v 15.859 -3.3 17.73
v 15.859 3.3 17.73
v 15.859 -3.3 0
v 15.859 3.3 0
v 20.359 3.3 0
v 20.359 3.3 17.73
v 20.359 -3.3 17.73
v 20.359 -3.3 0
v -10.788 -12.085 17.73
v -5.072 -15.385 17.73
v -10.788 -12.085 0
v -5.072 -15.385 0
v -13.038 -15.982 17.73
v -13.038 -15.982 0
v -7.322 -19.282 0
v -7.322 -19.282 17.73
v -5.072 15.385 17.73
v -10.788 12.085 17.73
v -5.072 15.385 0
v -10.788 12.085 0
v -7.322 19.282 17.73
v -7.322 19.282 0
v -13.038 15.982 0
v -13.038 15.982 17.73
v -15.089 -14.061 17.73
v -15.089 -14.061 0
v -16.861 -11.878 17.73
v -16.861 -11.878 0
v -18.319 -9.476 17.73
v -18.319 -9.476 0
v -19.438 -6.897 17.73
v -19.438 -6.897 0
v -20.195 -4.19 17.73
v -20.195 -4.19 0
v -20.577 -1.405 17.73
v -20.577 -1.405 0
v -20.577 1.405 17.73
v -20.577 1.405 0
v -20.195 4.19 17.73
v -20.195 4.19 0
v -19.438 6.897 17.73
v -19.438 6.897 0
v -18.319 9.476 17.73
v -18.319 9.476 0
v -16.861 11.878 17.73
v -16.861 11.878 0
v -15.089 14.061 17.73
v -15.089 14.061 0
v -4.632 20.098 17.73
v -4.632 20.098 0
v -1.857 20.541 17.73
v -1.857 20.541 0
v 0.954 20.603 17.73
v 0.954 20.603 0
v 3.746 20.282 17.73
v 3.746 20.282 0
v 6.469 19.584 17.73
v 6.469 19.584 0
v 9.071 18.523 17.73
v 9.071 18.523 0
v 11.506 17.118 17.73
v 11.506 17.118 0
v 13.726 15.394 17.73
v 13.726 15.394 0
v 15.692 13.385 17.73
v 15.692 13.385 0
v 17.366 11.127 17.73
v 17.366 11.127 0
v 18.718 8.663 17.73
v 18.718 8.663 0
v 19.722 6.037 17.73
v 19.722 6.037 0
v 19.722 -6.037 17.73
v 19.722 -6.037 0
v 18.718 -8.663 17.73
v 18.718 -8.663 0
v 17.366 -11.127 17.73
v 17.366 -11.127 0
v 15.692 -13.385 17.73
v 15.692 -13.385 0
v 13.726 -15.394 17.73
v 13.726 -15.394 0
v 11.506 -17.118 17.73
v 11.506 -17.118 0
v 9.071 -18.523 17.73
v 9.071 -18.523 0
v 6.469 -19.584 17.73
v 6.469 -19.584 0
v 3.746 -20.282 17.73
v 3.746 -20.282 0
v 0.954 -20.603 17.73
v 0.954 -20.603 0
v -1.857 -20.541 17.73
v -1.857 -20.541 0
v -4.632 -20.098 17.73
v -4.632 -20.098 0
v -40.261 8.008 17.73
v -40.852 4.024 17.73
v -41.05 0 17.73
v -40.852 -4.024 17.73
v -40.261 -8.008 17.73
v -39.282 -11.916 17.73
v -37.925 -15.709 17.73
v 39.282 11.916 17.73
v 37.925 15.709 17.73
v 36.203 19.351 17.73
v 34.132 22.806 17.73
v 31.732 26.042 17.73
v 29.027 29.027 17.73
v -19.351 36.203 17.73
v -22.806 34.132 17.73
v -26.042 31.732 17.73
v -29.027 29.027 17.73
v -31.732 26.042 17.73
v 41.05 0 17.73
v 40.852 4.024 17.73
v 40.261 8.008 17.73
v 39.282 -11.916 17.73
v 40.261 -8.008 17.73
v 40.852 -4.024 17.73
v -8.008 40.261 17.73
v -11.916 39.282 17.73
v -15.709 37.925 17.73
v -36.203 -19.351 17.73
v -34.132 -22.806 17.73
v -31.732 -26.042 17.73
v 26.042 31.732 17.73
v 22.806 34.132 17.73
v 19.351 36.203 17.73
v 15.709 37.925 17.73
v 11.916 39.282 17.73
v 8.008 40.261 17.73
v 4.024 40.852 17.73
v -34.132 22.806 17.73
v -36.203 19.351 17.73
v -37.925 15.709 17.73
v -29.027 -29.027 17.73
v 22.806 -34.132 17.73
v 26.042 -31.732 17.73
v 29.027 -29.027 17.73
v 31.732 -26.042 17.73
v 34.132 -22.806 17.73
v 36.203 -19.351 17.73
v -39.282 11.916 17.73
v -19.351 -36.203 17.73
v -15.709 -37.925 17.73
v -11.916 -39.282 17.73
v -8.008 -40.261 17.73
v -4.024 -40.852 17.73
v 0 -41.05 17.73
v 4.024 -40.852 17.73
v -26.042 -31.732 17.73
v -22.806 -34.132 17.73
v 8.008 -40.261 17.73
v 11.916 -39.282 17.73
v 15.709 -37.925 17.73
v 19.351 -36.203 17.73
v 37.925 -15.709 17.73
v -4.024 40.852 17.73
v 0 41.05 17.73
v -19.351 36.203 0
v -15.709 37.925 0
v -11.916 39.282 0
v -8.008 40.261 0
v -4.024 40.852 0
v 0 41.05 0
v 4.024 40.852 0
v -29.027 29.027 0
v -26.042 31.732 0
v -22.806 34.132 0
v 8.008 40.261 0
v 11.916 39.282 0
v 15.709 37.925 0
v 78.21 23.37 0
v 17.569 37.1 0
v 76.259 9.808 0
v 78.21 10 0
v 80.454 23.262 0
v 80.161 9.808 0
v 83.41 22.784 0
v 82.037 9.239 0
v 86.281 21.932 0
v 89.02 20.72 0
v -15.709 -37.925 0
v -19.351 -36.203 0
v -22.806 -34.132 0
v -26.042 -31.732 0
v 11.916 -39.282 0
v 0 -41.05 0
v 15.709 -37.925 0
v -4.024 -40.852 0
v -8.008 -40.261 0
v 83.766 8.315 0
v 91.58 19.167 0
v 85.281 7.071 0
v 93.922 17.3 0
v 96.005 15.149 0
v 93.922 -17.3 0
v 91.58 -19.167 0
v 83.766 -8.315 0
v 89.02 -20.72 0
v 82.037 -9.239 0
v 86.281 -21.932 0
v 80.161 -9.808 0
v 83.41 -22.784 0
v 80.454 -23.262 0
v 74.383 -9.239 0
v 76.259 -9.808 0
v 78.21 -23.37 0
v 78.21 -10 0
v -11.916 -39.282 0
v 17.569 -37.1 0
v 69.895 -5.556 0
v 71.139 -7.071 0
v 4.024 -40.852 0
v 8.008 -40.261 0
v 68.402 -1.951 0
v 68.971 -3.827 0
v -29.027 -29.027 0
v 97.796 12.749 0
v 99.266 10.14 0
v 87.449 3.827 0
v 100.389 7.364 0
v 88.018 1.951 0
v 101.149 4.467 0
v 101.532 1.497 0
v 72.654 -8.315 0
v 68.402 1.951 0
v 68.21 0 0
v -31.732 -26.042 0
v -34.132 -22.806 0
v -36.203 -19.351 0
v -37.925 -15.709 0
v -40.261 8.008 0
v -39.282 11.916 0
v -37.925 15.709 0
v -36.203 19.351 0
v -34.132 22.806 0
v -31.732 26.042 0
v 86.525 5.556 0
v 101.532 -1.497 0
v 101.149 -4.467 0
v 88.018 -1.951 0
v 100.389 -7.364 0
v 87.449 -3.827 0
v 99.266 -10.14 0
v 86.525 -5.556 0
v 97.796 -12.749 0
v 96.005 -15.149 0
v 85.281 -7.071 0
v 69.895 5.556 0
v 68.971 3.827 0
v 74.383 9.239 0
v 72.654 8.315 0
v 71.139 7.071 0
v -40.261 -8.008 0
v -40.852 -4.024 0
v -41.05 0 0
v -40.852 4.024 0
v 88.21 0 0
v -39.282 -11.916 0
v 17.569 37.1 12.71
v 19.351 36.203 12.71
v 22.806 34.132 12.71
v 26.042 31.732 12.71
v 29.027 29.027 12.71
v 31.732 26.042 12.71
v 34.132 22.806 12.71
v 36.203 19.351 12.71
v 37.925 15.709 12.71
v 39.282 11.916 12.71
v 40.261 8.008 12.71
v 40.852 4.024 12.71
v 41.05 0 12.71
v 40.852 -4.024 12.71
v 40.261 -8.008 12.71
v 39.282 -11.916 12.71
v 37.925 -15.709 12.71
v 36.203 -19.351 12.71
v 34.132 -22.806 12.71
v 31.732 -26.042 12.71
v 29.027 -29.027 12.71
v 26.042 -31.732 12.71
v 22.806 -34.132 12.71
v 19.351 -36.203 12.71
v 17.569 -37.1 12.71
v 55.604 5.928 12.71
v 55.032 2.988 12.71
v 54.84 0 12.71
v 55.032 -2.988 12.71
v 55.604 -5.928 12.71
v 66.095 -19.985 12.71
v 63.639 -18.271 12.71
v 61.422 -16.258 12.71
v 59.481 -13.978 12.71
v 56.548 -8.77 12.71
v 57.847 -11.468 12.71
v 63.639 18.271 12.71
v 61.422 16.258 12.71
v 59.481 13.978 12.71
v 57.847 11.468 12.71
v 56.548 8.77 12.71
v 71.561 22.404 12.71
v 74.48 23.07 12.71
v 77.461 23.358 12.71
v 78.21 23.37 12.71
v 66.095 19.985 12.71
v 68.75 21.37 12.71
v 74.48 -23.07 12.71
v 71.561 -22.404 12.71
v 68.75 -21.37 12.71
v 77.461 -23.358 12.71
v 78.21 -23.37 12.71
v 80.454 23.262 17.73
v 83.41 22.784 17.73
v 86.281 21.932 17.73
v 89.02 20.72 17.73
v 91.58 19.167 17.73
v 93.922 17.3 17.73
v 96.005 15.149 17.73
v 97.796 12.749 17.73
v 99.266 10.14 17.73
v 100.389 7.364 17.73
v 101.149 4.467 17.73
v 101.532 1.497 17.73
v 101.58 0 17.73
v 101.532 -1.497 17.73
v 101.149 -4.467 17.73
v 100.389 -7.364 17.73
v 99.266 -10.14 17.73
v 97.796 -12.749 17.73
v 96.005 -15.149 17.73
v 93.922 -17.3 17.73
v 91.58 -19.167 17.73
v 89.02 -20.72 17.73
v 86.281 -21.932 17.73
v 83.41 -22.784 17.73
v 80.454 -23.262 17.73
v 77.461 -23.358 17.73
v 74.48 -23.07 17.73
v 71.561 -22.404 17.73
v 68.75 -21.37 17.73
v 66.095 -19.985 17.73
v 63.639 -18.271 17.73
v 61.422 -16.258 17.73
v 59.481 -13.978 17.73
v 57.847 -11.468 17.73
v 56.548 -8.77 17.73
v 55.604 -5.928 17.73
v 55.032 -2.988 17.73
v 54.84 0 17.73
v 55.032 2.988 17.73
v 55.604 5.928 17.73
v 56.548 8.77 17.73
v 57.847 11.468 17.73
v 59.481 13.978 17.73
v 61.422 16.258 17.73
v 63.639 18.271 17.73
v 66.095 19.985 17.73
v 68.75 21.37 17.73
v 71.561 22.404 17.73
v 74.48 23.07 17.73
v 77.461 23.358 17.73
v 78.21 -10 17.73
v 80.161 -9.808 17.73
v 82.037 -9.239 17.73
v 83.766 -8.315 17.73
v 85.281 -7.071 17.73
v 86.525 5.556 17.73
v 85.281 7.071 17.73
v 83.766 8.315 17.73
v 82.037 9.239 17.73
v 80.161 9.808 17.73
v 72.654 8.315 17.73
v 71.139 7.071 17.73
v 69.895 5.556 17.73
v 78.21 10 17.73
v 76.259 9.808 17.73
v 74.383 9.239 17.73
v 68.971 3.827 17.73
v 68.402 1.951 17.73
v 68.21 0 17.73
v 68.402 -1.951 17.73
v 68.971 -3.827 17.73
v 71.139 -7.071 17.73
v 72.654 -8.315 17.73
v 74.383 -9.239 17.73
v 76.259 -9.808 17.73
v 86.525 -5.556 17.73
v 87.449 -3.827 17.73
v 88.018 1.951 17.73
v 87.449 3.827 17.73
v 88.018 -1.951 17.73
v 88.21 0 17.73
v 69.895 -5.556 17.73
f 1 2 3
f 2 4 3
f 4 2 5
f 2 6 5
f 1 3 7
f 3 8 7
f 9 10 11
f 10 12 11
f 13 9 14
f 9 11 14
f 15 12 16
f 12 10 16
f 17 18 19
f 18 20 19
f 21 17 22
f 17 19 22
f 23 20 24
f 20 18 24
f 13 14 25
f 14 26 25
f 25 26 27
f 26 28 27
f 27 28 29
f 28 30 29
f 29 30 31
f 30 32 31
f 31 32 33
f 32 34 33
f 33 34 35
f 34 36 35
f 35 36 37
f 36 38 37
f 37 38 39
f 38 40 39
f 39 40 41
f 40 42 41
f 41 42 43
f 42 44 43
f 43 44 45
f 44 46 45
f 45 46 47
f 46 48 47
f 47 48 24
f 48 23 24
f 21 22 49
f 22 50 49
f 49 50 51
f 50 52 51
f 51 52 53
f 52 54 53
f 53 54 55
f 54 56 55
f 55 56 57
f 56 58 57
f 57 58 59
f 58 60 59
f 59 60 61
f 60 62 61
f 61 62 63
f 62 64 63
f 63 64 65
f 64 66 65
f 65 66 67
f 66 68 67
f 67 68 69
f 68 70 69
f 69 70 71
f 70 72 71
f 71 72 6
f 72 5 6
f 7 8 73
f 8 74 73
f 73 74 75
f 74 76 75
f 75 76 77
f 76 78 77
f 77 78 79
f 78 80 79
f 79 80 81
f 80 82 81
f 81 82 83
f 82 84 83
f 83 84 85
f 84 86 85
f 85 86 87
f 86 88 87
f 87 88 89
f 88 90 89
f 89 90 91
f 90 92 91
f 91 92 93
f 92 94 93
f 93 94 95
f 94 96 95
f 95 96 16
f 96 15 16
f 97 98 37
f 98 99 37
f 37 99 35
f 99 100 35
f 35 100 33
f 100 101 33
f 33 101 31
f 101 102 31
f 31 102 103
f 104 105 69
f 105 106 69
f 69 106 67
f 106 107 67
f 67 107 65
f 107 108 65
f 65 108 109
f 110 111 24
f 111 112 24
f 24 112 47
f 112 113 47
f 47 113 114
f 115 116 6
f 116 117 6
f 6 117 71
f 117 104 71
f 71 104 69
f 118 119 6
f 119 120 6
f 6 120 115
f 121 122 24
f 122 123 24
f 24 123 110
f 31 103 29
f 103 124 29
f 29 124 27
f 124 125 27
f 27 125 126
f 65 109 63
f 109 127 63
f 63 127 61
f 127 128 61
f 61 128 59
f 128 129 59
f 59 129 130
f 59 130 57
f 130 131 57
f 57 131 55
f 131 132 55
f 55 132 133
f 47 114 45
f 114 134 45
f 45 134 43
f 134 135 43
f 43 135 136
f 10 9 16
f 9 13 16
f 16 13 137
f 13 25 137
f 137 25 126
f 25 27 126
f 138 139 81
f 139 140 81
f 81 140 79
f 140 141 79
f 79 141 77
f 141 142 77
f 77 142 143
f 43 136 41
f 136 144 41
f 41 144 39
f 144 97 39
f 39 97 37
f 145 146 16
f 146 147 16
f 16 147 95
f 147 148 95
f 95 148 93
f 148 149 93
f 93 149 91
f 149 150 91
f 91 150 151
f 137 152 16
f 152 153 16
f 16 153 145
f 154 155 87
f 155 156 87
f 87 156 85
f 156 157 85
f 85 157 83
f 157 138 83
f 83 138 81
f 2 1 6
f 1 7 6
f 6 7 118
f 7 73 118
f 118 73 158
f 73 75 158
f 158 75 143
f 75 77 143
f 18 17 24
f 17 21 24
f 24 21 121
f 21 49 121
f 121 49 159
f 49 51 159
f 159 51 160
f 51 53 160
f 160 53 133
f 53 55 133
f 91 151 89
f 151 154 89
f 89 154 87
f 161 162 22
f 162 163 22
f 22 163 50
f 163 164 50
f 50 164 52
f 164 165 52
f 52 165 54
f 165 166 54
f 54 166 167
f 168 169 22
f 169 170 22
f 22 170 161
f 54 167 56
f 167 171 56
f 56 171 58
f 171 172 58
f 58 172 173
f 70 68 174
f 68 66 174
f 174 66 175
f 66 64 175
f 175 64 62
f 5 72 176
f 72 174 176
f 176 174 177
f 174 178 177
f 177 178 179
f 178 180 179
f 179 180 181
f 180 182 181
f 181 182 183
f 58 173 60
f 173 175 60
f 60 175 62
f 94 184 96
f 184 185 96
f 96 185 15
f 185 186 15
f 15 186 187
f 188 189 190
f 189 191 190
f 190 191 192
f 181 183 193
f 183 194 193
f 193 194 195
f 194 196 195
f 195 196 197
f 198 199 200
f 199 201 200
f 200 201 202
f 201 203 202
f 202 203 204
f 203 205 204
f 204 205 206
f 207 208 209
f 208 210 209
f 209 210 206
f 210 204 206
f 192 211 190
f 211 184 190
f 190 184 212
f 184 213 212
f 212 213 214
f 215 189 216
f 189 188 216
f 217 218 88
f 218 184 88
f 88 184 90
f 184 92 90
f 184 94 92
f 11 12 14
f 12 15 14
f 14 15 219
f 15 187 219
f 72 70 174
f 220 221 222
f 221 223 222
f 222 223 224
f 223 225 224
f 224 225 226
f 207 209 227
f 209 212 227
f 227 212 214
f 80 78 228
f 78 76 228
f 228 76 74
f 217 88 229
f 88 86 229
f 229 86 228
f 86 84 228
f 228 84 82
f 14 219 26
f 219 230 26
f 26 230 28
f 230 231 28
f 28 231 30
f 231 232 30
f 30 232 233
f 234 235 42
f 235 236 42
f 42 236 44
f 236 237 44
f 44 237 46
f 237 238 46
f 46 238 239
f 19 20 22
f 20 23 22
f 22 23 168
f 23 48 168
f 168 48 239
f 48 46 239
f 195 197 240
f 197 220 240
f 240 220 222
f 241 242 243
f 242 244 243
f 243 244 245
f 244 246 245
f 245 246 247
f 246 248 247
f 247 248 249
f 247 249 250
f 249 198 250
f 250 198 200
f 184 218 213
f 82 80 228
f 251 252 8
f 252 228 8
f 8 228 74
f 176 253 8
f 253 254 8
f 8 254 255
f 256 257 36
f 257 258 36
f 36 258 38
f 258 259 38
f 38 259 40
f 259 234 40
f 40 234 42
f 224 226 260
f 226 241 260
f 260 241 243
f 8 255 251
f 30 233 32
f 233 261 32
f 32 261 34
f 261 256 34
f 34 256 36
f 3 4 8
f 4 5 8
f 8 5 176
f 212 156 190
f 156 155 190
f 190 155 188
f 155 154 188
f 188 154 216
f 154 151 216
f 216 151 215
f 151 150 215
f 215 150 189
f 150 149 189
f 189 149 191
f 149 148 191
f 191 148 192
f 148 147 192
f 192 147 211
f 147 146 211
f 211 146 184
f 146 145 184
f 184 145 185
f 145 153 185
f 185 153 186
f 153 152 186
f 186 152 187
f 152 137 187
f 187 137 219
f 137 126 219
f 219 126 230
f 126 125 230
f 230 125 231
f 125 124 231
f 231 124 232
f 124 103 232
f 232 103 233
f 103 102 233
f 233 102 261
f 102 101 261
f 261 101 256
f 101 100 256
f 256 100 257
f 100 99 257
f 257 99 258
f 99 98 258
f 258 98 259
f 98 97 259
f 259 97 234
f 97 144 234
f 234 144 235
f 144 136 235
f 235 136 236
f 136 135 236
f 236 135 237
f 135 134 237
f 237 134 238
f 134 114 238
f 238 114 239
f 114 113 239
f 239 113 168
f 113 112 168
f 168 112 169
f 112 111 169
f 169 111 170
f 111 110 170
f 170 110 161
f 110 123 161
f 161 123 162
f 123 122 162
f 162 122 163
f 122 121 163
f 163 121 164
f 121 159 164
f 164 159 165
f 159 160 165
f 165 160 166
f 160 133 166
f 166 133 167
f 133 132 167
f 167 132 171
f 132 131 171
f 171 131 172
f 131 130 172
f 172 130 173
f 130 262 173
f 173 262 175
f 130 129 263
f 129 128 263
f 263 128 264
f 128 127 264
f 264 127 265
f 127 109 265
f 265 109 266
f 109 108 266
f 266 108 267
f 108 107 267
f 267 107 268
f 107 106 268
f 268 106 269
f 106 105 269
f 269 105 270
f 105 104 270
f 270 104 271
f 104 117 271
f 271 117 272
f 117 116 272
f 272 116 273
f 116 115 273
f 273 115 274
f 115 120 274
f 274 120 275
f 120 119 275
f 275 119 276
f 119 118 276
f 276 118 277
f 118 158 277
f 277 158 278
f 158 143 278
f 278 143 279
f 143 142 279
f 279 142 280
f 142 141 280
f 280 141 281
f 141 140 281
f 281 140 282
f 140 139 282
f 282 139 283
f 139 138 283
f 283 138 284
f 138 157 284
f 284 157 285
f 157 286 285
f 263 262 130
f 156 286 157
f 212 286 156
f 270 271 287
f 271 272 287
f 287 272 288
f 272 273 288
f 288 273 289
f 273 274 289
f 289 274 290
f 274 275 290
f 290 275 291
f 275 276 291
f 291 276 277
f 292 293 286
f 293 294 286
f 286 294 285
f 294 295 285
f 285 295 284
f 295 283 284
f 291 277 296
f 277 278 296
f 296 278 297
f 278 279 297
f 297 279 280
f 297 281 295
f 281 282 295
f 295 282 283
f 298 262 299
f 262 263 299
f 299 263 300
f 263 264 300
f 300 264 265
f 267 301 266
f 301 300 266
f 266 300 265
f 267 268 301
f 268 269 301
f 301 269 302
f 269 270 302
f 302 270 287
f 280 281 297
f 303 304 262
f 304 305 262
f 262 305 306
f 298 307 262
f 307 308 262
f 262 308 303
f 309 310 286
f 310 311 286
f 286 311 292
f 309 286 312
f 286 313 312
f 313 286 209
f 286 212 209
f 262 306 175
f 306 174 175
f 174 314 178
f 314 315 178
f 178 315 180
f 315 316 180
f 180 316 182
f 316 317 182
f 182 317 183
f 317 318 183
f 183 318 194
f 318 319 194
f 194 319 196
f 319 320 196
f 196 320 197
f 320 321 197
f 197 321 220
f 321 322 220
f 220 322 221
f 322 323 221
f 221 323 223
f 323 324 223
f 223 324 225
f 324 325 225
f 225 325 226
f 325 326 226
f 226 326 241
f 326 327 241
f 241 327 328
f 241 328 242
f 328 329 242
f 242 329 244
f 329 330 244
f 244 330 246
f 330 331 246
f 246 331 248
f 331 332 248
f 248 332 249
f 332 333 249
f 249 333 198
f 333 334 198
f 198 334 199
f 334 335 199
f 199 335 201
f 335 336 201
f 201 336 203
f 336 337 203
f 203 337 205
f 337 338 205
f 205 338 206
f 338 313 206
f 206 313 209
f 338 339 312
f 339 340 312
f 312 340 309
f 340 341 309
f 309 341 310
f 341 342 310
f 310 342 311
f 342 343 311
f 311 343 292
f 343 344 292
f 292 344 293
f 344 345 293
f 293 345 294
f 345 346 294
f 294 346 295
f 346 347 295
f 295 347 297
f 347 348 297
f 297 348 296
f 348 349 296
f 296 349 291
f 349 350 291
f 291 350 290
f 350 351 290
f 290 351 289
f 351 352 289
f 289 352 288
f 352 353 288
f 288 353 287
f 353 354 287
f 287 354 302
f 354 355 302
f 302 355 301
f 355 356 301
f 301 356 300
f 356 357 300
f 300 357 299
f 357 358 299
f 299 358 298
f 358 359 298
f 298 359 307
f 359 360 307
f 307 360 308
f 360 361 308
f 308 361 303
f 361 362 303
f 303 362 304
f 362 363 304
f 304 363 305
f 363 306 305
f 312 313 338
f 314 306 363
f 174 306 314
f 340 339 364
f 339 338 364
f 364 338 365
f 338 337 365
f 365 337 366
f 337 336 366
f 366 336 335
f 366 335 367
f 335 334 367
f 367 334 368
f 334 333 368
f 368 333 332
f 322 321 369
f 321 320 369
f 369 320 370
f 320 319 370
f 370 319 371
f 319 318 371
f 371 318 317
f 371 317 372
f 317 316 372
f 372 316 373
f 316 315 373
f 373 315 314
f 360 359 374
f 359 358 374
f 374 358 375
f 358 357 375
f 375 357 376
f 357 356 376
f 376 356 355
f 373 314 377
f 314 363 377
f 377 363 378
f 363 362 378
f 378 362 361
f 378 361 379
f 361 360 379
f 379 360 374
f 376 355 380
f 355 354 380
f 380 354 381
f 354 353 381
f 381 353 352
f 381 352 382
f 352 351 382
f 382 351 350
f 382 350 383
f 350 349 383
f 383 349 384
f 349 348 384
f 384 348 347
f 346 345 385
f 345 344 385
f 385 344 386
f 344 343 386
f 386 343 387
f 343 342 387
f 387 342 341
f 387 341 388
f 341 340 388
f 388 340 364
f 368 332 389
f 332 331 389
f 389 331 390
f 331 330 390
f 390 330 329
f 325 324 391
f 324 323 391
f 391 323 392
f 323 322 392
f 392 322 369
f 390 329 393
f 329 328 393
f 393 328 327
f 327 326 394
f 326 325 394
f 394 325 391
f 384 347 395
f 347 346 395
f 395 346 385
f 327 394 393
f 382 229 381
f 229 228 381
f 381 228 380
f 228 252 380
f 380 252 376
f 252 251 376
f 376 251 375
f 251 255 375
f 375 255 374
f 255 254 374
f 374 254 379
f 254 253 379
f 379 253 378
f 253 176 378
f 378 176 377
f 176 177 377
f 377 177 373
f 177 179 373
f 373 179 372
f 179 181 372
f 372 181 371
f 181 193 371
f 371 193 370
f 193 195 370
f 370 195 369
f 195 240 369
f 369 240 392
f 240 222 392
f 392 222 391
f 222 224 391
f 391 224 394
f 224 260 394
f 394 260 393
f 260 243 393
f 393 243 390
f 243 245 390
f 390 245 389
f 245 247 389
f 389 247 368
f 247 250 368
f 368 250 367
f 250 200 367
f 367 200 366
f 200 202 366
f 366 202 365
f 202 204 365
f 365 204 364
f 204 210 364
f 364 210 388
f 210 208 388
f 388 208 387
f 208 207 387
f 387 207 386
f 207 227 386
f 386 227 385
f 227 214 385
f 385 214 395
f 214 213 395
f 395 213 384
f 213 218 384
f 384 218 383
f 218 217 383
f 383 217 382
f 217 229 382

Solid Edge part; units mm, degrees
sketch "Sketch1" plane through (0, 0, 0) normal (0, 0, 1) x (1, 0, 0)
  circle A0 centre (0, 0) radius 41.05
  circle A1 centre (78.21, 0) radius 23.37
  circle A2 centre (0, 0) radius 20.625
  circle A3 centre (78.21, 0) radius 10
extrude "Protrusion1" add sketch "Sketch1" along normal blind 17.73
sketch "Sketch2" plane through (0, 0, 0) normal (0, 0, 1) x (1, 0, 0)
  line L0 (17.5689, 37.1003) -> (30.4967, 0)
  line L1 (30.4967, 0) -> (17.5689, -37.1003)
  line L2 (78.21, -23.37) -> (17.5689, -37.1003)
  line L3 (57, 0) -> (78.21, -23.37)
  line L4 (78.21, 23.37) -> (57, 0)
  line L5 (78.21, 23.37) -> (17.5689, 37.1003)
extrude "ExtrudedProtrusion_3" add sketch "Sketch2" along normal blind 12.71
sketch "Sketch3" plane through (0, 0, 0) normal (0, 0, 1) x (1, 0, 0)
  line L0 (-10.7875, 12.0845) -> (-5.0718, 15.3845)
  line L1 (-7.5718, 19.7147) -> (-5.0718, 15.3845)
  line L2 (-13.2875, 16.4147) -> (-7.5718, 19.7147)
  line L3 (-10.7875, 12.0845) -> (-13.2875, 16.4147)
  line L4 (-5.0718, -15.3845) -> (-10.7875, -12.0845)
  line L5 (-13.2875, -16.4147) -> (-10.7875, -12.0845)
  line L6 (-7.5718, -19.7147) -> (-13.2875, -16.4147)
  line L7 (-5.0718, -15.3845) -> (-7.5718, -19.7147)
  line L8 (20.8593, -3.3) -> (15.8593, -3.3)
  line L9 (15.8593, 3.3) -> (15.8593, -3.3)
  line L10 (15.8593, 3.3) -> (20.8593, 3.3)
  line L11 (20.8593, 3.3) -> (20.8593, -3.3)
extrude "ExtrudedProtrusion_4" add sketch "Sketch3" along normal blind 17.73
